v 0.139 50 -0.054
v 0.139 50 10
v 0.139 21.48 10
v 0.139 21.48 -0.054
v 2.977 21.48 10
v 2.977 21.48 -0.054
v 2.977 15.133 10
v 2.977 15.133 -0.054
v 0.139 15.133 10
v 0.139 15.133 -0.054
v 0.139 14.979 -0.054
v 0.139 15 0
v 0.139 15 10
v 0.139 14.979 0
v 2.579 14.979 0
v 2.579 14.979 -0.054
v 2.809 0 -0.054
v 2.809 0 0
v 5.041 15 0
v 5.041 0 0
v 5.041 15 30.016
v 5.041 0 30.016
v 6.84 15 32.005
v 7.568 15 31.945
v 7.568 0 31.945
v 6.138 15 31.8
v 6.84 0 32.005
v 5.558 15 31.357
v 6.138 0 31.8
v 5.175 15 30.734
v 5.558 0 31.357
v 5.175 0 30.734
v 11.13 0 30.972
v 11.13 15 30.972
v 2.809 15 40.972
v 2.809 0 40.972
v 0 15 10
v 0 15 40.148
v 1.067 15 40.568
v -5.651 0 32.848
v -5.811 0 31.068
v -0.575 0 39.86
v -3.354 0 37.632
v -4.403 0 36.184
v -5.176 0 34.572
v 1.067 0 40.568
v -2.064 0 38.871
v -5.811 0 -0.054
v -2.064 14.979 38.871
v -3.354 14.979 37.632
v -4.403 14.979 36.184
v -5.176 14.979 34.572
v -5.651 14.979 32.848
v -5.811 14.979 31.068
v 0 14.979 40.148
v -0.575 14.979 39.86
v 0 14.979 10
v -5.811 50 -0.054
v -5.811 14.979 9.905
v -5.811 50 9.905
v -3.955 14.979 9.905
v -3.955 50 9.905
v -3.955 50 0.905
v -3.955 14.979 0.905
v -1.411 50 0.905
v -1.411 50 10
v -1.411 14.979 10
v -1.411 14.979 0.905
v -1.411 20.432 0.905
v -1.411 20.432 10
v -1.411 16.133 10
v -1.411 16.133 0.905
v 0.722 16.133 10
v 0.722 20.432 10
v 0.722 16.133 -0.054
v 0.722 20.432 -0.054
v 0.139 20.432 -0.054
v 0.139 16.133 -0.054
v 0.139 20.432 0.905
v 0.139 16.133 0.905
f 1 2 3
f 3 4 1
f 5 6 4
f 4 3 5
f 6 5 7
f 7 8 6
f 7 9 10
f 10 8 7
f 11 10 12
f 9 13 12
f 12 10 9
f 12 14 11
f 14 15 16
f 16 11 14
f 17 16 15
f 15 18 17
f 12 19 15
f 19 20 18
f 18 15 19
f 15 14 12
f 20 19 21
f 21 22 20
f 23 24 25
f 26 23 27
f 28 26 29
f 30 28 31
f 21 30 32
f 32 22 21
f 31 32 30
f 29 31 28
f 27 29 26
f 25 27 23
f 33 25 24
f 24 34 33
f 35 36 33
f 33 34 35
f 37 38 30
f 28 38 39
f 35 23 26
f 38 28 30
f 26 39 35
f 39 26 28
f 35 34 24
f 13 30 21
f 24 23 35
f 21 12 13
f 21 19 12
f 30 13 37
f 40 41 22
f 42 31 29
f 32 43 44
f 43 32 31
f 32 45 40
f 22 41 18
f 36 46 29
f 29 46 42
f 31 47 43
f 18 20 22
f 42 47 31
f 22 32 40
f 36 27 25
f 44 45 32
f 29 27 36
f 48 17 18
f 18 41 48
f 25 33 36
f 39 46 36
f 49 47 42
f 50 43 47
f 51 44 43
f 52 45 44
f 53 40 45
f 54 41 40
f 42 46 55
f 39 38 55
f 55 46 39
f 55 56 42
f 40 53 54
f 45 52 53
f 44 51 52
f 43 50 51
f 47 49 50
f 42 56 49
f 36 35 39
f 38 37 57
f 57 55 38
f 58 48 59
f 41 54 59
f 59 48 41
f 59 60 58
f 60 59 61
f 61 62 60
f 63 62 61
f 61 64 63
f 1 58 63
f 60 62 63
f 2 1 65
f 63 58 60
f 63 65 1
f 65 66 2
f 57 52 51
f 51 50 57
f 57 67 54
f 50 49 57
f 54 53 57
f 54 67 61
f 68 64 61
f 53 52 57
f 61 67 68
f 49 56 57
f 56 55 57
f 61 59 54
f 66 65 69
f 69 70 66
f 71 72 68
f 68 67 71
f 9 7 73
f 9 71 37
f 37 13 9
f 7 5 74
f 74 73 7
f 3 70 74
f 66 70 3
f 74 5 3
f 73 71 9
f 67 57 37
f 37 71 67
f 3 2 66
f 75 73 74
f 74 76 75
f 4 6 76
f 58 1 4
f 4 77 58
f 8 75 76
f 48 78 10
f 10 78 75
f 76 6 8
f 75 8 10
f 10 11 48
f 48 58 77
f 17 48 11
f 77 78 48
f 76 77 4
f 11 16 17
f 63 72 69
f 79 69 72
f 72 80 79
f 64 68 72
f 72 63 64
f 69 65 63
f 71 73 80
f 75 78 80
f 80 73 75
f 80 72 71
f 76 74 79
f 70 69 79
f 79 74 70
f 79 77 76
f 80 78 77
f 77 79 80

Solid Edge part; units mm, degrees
sketch "Sketch1" plane through (0, 0, 0) normal (0, -1, 0) x (1, 0, 0)
  line L0 (5.0412, 10) -> (5.0412, 32.6352)
  line L1 (5.0412, 32.6352) -> (11.1303, 30.9718)
  line L2 (11.1303, 30.9718) -> (2.809, 40.9718)
  line L3 (0, 40.9718) -> (2.809, 40.9718)
  line L4 (0, 0) -> (0, 40.9718)
  line L5 (0, 0) -> (0.0508, 0)
  line L6 (0.0508, 0) -> (5.0412, 0)
  line L7 (5.0412, 0) -> (5.0412, 10)
extrude "Protrusion1" add sketch "Sketch1" against normal blind 15
sketch "Sketch2" plane through (0, 0, 0) normal (0, -1, 0) x (1, 0, 0)
  line L0 (-1.4115, 10) -> (-1.4115, 1)
  line L1 (0.1393, 10) -> (-1.4115, 10)
  line L2 (0.1393, -0.0543) -> (0.1393, 10)
  line L3 (-5.8107, -0.0543) -> (0.1393, -0.0543)
  line L4 (-5.8107, 9.9052) -> (-5.8107, -0.0543)
  line L5 (-3.9551, 9.9052) -> (-5.8107, 9.9052)
  line L6 (-3.9551, 0.9052) -> (-3.9551, 9.9052)
  line L7 (-1.4115, 0.9052) -> (-3.9551, 0.9052)
extrude "ProtrusioneEstrusa_8" add sketch "Sketch2" against normal blind 50 material side at (-1.4615, 0, 5.5)
sketch "Sketch3" plane through (3.7254, 22.5, 10) normal (0, 0, 1) x (0, 1, 0)
  line L0 (-2.0677, 7.6805) -> (-6.3668, 7.6805)
  line L1 (-6.3668, 7.6805) -> (-6.3668, 3.0032)
  line L2 (-6.3668, 3.0032) -> (-2.0677, 3.0032)
  line L3 (-2.0677, 3.0032) -> (-2.0677, 7.6805)
extrude "Cutout1" cut sketch "Sketch3" against normal blind 8.8165
sketch "Sketch4" plane through (3.7254, 22.5, 10) normal (0, 0, 1) x (0, 1, 0)
  line L0 (-2.0677, 3.0032) -> (-2.0677, 7.6805)
  line L1 (-2.0677, 7.6805) -> (-6.3668, 7.6805)
  line L2 (-6.3668, 7.6805) -> (-6.3668, 3.0032)
  line L3 (-6.3668, 3.0032) -> (-2.0677, 3.0032)
extrude "Cutout2" cut sketch "Sketch4" against normal up to vertex (9.0948 mm away)
sketch "Sketch5" plane through (3.7254, 22.5, 10) normal (0, 0, 1) x (0, 1, 0)
  line L0 (-1.0199, 4.0793) -> (-2.0677, 4.0793)
  line L1 (-2.0677, 3.0032) -> (-2.0677, 4.0793)
  line L2 (-6.3668, 3.0032) -> (-2.0677, 3.0032)
  line L3 (-6.3668, 4.0793) -> (-6.3668, 3.0032)
  line L4 (-6.3668, 4.0793) -> (-7.3668, 4.0793)
  line L5 (-7.3668, 4.0793) -> (-7.3668, 0.7486)
  line L6 (-7.3668, 0.7486) -> (-1.0199, 0.7486)
  line L7 (-1.0199, 0.7486) -> (-1.0199, 4.0793)
extrude "Protrusion2" add sketch "Sketch5" against normal up to vertex (10.0543 mm away)
sketch "Sketch6" plane through (1.2976, 7.5, 40.9718) normal (0, 0, 1) x (0, -1, 0)
  line L0 (7.5, 1.5113) -> (-7.479, 1.2818)
  line L1 (-7.479, 1.2818) -> (-7.479, -7.1083)
  line L2 (-7.479, -7.1083) -> (7.5, -7.1083)
  line L3 (7.5, -7.1083) -> (7.5, 1.5113)
extrude "Protrusion3" add sketch "Sketch6" against normal up to vertex (41.026 mm away)
fillet "Rotondo_2" radius 2 1 edges at (5.0412, 7.5, 32.6352)
fillet "Rotondo_3" radius 10 1 edges at (-5.8107, 7.4895, 40.9718)
